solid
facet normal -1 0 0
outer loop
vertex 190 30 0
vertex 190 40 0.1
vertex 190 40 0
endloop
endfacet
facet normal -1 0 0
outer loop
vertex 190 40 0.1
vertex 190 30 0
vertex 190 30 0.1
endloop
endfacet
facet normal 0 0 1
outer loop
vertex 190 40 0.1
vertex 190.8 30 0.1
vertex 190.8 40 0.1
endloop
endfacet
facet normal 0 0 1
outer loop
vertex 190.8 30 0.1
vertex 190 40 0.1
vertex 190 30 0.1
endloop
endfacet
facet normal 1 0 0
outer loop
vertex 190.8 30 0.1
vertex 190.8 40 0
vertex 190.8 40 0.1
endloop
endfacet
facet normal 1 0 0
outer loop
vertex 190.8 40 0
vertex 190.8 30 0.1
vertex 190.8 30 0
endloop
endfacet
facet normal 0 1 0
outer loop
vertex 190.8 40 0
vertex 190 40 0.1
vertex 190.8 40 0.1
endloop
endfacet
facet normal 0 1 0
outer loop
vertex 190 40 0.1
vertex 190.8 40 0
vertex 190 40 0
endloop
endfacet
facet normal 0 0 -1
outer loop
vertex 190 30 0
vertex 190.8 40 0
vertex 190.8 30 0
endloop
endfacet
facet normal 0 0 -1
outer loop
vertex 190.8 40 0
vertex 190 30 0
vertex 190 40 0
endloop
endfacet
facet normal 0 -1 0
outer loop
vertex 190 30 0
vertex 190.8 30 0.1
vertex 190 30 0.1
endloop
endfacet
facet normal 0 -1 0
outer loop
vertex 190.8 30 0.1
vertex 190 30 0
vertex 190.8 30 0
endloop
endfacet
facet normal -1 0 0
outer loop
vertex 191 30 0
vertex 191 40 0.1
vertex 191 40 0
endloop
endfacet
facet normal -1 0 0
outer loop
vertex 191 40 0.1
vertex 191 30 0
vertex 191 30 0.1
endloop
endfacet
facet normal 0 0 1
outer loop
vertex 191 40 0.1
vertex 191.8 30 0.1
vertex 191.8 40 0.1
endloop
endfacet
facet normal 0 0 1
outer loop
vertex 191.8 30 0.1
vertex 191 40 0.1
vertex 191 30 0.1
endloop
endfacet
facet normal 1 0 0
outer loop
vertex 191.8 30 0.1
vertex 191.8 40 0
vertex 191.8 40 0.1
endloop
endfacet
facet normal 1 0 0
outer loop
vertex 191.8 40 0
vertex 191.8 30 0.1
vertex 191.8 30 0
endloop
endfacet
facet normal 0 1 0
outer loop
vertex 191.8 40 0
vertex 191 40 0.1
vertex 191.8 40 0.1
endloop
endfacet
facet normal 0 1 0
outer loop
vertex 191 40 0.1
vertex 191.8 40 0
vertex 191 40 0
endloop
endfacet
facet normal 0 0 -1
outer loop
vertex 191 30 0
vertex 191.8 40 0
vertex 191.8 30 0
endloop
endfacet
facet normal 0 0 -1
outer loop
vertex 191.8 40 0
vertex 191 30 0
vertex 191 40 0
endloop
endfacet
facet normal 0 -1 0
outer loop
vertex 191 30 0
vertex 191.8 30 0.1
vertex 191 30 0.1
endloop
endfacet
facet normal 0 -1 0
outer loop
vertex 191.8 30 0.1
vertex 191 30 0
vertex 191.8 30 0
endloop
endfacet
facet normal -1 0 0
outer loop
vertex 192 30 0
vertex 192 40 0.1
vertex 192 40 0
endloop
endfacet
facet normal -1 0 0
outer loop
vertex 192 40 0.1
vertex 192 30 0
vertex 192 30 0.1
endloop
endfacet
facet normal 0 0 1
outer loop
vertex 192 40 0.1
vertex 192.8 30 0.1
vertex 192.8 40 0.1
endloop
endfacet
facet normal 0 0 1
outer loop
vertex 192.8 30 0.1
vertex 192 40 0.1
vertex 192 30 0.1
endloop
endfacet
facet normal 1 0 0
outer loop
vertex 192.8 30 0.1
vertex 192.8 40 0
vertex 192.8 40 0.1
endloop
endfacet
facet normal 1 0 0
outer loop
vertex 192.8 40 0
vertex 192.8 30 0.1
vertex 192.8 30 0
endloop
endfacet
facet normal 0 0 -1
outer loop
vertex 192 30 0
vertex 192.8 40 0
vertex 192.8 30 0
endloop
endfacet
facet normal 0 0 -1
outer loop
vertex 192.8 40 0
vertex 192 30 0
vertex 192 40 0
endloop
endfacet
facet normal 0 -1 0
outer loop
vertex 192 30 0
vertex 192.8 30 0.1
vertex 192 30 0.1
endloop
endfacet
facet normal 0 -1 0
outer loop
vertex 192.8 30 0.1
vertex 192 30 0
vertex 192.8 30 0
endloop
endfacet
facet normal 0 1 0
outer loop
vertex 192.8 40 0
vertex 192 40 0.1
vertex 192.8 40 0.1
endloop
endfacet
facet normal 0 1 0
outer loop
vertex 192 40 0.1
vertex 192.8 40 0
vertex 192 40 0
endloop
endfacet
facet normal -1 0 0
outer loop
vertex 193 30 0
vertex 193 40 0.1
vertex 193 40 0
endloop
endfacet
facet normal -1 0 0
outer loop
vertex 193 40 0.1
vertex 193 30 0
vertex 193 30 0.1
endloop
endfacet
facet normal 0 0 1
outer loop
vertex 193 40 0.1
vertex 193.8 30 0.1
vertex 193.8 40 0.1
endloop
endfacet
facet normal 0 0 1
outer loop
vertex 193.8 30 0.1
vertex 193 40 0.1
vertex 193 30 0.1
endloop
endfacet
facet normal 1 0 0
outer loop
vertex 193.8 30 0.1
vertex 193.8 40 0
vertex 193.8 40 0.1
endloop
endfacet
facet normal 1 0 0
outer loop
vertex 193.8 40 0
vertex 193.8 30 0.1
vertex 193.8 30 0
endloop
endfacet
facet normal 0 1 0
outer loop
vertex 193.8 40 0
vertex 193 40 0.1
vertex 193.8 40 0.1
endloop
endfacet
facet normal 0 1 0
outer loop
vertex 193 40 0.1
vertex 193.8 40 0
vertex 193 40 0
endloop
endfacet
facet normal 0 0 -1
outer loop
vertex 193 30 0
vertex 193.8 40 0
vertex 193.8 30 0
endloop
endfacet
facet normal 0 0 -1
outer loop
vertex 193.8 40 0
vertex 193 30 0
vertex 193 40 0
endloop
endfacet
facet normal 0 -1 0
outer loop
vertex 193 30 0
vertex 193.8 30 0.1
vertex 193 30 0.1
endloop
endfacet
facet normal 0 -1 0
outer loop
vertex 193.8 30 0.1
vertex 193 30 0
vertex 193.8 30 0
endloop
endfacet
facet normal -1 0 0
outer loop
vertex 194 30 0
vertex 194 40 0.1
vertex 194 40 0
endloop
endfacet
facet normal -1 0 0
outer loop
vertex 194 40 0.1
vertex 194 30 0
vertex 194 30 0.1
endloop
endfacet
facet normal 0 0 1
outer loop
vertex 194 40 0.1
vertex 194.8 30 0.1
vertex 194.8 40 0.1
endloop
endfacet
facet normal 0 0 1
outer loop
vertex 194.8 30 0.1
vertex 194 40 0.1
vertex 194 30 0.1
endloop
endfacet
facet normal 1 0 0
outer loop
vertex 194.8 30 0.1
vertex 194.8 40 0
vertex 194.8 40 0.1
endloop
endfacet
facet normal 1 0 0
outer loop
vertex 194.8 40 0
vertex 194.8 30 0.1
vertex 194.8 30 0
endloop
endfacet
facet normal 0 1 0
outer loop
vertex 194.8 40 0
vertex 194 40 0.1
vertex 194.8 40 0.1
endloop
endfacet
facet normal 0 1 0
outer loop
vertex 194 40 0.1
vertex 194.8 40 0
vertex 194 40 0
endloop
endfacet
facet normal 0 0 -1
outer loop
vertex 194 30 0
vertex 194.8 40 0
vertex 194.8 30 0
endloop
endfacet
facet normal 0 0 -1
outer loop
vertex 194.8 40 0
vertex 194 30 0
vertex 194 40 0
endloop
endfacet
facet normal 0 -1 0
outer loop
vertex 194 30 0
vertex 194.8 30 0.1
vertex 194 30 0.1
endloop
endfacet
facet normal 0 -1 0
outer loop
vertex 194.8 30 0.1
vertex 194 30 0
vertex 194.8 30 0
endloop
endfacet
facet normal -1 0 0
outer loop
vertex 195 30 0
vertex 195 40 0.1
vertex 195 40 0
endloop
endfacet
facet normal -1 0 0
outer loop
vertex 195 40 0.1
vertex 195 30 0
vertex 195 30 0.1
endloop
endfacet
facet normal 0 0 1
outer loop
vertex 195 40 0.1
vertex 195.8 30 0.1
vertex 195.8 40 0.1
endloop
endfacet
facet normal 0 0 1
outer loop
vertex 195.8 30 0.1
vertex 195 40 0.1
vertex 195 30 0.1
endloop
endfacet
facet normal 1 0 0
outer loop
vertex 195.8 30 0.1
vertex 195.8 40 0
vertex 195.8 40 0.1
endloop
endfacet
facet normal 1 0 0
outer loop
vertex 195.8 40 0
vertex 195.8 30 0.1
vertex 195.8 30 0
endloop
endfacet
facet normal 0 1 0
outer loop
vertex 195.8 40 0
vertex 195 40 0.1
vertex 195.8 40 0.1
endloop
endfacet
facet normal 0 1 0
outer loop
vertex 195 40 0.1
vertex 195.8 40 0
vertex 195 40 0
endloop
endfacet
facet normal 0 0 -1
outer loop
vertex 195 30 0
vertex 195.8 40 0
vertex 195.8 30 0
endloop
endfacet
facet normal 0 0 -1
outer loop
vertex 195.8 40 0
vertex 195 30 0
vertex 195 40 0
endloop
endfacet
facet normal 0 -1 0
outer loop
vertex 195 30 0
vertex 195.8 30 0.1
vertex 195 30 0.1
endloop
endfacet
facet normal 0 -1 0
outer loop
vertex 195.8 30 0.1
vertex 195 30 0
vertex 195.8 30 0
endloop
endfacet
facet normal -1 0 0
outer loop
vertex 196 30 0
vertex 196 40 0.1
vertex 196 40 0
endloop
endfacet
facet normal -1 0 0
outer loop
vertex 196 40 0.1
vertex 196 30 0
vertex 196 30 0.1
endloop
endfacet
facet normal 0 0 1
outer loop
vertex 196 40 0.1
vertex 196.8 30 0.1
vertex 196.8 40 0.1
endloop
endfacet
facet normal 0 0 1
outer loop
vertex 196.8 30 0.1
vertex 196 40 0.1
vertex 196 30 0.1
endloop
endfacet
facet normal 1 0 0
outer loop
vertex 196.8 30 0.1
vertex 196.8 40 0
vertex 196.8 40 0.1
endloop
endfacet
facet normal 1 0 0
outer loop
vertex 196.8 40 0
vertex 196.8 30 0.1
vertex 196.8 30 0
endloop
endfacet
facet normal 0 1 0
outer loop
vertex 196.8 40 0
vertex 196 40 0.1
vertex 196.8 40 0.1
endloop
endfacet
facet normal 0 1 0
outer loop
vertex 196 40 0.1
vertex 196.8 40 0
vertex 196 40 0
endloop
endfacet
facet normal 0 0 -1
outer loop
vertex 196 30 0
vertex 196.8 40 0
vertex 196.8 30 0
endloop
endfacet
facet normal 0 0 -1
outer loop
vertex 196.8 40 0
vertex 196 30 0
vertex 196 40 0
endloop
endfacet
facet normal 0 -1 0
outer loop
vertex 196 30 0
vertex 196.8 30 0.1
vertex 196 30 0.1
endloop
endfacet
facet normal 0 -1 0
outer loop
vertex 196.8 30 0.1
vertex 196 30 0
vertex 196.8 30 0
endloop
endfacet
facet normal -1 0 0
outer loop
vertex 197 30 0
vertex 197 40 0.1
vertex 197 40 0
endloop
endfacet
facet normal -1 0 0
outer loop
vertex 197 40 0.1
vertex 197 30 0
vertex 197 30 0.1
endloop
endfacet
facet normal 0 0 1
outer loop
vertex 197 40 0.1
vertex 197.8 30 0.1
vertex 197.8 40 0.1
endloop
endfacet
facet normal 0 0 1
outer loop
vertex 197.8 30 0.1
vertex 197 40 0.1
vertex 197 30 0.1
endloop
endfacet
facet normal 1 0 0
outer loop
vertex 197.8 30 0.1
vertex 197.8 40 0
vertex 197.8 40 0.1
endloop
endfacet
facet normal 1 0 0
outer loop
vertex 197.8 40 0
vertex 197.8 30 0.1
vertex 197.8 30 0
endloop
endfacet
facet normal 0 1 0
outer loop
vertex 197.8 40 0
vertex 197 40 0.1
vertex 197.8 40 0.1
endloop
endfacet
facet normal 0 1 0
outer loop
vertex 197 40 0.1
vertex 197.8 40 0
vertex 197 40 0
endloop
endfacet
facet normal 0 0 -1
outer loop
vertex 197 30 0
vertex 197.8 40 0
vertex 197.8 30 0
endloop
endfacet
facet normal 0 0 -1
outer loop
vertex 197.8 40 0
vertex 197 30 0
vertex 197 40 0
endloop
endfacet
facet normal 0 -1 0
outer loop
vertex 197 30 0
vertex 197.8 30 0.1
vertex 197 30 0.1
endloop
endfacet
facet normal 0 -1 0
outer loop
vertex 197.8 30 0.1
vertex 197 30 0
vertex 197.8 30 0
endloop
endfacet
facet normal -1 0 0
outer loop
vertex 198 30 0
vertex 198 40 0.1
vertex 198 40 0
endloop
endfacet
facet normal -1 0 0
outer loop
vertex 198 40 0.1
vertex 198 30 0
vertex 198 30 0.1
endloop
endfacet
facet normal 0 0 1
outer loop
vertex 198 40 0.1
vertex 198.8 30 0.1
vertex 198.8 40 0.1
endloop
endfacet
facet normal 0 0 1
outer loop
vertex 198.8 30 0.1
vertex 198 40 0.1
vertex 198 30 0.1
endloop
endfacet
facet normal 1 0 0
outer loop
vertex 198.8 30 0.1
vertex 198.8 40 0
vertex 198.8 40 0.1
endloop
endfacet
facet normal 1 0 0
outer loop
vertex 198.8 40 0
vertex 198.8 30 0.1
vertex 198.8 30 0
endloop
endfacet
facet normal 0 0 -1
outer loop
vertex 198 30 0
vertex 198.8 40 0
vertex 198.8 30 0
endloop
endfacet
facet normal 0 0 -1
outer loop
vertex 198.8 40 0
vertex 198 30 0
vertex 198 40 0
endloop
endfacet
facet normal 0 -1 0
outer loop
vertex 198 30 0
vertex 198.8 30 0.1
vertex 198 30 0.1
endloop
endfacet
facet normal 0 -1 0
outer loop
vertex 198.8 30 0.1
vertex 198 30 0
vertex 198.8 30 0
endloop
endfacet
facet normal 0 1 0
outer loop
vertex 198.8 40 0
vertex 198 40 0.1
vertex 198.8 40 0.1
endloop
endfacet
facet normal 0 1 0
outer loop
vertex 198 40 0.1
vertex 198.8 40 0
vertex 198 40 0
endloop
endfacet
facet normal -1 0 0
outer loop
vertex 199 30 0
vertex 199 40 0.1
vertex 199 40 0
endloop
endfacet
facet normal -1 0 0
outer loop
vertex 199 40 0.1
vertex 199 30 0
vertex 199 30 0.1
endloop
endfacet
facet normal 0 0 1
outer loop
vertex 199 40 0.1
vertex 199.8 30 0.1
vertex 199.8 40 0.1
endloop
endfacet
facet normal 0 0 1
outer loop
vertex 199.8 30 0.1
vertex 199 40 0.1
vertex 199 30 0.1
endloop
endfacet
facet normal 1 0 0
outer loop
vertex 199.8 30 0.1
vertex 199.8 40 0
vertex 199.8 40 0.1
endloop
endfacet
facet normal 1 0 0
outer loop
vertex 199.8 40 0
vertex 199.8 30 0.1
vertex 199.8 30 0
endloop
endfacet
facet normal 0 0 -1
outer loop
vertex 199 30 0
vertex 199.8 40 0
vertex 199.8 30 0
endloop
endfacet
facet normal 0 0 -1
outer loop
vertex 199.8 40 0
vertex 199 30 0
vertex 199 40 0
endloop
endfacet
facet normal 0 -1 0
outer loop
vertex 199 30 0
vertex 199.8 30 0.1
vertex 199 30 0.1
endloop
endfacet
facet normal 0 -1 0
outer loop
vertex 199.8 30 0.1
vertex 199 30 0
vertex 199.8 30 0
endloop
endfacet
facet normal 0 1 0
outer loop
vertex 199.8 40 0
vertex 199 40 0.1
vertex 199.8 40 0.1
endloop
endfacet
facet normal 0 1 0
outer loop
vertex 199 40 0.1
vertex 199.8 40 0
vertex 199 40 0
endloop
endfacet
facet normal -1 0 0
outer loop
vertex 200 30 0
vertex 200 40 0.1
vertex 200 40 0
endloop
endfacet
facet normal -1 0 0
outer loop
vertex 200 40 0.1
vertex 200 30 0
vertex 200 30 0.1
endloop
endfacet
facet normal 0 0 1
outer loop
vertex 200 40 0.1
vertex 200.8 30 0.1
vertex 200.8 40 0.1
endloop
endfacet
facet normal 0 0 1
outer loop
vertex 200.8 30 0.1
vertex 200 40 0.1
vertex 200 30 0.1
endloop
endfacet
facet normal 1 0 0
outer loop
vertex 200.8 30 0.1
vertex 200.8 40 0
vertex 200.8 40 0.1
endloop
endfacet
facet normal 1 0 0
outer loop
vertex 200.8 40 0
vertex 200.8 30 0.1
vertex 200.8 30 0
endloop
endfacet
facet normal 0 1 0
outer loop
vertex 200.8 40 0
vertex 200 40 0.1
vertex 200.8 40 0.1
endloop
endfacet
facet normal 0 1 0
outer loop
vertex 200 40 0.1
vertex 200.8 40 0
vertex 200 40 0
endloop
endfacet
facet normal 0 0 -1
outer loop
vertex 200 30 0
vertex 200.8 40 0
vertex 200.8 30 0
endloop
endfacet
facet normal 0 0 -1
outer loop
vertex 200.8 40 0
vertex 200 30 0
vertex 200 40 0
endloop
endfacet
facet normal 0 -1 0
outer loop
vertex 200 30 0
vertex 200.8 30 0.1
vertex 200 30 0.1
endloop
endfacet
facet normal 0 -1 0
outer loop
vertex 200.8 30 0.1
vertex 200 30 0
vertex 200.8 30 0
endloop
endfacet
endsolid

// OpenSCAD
translate([10+180,10+20,0])
        for (i = [0 : 10]){
            translate([i,0,0])
                cube(size = [0.8,10,0.1]);
    }
